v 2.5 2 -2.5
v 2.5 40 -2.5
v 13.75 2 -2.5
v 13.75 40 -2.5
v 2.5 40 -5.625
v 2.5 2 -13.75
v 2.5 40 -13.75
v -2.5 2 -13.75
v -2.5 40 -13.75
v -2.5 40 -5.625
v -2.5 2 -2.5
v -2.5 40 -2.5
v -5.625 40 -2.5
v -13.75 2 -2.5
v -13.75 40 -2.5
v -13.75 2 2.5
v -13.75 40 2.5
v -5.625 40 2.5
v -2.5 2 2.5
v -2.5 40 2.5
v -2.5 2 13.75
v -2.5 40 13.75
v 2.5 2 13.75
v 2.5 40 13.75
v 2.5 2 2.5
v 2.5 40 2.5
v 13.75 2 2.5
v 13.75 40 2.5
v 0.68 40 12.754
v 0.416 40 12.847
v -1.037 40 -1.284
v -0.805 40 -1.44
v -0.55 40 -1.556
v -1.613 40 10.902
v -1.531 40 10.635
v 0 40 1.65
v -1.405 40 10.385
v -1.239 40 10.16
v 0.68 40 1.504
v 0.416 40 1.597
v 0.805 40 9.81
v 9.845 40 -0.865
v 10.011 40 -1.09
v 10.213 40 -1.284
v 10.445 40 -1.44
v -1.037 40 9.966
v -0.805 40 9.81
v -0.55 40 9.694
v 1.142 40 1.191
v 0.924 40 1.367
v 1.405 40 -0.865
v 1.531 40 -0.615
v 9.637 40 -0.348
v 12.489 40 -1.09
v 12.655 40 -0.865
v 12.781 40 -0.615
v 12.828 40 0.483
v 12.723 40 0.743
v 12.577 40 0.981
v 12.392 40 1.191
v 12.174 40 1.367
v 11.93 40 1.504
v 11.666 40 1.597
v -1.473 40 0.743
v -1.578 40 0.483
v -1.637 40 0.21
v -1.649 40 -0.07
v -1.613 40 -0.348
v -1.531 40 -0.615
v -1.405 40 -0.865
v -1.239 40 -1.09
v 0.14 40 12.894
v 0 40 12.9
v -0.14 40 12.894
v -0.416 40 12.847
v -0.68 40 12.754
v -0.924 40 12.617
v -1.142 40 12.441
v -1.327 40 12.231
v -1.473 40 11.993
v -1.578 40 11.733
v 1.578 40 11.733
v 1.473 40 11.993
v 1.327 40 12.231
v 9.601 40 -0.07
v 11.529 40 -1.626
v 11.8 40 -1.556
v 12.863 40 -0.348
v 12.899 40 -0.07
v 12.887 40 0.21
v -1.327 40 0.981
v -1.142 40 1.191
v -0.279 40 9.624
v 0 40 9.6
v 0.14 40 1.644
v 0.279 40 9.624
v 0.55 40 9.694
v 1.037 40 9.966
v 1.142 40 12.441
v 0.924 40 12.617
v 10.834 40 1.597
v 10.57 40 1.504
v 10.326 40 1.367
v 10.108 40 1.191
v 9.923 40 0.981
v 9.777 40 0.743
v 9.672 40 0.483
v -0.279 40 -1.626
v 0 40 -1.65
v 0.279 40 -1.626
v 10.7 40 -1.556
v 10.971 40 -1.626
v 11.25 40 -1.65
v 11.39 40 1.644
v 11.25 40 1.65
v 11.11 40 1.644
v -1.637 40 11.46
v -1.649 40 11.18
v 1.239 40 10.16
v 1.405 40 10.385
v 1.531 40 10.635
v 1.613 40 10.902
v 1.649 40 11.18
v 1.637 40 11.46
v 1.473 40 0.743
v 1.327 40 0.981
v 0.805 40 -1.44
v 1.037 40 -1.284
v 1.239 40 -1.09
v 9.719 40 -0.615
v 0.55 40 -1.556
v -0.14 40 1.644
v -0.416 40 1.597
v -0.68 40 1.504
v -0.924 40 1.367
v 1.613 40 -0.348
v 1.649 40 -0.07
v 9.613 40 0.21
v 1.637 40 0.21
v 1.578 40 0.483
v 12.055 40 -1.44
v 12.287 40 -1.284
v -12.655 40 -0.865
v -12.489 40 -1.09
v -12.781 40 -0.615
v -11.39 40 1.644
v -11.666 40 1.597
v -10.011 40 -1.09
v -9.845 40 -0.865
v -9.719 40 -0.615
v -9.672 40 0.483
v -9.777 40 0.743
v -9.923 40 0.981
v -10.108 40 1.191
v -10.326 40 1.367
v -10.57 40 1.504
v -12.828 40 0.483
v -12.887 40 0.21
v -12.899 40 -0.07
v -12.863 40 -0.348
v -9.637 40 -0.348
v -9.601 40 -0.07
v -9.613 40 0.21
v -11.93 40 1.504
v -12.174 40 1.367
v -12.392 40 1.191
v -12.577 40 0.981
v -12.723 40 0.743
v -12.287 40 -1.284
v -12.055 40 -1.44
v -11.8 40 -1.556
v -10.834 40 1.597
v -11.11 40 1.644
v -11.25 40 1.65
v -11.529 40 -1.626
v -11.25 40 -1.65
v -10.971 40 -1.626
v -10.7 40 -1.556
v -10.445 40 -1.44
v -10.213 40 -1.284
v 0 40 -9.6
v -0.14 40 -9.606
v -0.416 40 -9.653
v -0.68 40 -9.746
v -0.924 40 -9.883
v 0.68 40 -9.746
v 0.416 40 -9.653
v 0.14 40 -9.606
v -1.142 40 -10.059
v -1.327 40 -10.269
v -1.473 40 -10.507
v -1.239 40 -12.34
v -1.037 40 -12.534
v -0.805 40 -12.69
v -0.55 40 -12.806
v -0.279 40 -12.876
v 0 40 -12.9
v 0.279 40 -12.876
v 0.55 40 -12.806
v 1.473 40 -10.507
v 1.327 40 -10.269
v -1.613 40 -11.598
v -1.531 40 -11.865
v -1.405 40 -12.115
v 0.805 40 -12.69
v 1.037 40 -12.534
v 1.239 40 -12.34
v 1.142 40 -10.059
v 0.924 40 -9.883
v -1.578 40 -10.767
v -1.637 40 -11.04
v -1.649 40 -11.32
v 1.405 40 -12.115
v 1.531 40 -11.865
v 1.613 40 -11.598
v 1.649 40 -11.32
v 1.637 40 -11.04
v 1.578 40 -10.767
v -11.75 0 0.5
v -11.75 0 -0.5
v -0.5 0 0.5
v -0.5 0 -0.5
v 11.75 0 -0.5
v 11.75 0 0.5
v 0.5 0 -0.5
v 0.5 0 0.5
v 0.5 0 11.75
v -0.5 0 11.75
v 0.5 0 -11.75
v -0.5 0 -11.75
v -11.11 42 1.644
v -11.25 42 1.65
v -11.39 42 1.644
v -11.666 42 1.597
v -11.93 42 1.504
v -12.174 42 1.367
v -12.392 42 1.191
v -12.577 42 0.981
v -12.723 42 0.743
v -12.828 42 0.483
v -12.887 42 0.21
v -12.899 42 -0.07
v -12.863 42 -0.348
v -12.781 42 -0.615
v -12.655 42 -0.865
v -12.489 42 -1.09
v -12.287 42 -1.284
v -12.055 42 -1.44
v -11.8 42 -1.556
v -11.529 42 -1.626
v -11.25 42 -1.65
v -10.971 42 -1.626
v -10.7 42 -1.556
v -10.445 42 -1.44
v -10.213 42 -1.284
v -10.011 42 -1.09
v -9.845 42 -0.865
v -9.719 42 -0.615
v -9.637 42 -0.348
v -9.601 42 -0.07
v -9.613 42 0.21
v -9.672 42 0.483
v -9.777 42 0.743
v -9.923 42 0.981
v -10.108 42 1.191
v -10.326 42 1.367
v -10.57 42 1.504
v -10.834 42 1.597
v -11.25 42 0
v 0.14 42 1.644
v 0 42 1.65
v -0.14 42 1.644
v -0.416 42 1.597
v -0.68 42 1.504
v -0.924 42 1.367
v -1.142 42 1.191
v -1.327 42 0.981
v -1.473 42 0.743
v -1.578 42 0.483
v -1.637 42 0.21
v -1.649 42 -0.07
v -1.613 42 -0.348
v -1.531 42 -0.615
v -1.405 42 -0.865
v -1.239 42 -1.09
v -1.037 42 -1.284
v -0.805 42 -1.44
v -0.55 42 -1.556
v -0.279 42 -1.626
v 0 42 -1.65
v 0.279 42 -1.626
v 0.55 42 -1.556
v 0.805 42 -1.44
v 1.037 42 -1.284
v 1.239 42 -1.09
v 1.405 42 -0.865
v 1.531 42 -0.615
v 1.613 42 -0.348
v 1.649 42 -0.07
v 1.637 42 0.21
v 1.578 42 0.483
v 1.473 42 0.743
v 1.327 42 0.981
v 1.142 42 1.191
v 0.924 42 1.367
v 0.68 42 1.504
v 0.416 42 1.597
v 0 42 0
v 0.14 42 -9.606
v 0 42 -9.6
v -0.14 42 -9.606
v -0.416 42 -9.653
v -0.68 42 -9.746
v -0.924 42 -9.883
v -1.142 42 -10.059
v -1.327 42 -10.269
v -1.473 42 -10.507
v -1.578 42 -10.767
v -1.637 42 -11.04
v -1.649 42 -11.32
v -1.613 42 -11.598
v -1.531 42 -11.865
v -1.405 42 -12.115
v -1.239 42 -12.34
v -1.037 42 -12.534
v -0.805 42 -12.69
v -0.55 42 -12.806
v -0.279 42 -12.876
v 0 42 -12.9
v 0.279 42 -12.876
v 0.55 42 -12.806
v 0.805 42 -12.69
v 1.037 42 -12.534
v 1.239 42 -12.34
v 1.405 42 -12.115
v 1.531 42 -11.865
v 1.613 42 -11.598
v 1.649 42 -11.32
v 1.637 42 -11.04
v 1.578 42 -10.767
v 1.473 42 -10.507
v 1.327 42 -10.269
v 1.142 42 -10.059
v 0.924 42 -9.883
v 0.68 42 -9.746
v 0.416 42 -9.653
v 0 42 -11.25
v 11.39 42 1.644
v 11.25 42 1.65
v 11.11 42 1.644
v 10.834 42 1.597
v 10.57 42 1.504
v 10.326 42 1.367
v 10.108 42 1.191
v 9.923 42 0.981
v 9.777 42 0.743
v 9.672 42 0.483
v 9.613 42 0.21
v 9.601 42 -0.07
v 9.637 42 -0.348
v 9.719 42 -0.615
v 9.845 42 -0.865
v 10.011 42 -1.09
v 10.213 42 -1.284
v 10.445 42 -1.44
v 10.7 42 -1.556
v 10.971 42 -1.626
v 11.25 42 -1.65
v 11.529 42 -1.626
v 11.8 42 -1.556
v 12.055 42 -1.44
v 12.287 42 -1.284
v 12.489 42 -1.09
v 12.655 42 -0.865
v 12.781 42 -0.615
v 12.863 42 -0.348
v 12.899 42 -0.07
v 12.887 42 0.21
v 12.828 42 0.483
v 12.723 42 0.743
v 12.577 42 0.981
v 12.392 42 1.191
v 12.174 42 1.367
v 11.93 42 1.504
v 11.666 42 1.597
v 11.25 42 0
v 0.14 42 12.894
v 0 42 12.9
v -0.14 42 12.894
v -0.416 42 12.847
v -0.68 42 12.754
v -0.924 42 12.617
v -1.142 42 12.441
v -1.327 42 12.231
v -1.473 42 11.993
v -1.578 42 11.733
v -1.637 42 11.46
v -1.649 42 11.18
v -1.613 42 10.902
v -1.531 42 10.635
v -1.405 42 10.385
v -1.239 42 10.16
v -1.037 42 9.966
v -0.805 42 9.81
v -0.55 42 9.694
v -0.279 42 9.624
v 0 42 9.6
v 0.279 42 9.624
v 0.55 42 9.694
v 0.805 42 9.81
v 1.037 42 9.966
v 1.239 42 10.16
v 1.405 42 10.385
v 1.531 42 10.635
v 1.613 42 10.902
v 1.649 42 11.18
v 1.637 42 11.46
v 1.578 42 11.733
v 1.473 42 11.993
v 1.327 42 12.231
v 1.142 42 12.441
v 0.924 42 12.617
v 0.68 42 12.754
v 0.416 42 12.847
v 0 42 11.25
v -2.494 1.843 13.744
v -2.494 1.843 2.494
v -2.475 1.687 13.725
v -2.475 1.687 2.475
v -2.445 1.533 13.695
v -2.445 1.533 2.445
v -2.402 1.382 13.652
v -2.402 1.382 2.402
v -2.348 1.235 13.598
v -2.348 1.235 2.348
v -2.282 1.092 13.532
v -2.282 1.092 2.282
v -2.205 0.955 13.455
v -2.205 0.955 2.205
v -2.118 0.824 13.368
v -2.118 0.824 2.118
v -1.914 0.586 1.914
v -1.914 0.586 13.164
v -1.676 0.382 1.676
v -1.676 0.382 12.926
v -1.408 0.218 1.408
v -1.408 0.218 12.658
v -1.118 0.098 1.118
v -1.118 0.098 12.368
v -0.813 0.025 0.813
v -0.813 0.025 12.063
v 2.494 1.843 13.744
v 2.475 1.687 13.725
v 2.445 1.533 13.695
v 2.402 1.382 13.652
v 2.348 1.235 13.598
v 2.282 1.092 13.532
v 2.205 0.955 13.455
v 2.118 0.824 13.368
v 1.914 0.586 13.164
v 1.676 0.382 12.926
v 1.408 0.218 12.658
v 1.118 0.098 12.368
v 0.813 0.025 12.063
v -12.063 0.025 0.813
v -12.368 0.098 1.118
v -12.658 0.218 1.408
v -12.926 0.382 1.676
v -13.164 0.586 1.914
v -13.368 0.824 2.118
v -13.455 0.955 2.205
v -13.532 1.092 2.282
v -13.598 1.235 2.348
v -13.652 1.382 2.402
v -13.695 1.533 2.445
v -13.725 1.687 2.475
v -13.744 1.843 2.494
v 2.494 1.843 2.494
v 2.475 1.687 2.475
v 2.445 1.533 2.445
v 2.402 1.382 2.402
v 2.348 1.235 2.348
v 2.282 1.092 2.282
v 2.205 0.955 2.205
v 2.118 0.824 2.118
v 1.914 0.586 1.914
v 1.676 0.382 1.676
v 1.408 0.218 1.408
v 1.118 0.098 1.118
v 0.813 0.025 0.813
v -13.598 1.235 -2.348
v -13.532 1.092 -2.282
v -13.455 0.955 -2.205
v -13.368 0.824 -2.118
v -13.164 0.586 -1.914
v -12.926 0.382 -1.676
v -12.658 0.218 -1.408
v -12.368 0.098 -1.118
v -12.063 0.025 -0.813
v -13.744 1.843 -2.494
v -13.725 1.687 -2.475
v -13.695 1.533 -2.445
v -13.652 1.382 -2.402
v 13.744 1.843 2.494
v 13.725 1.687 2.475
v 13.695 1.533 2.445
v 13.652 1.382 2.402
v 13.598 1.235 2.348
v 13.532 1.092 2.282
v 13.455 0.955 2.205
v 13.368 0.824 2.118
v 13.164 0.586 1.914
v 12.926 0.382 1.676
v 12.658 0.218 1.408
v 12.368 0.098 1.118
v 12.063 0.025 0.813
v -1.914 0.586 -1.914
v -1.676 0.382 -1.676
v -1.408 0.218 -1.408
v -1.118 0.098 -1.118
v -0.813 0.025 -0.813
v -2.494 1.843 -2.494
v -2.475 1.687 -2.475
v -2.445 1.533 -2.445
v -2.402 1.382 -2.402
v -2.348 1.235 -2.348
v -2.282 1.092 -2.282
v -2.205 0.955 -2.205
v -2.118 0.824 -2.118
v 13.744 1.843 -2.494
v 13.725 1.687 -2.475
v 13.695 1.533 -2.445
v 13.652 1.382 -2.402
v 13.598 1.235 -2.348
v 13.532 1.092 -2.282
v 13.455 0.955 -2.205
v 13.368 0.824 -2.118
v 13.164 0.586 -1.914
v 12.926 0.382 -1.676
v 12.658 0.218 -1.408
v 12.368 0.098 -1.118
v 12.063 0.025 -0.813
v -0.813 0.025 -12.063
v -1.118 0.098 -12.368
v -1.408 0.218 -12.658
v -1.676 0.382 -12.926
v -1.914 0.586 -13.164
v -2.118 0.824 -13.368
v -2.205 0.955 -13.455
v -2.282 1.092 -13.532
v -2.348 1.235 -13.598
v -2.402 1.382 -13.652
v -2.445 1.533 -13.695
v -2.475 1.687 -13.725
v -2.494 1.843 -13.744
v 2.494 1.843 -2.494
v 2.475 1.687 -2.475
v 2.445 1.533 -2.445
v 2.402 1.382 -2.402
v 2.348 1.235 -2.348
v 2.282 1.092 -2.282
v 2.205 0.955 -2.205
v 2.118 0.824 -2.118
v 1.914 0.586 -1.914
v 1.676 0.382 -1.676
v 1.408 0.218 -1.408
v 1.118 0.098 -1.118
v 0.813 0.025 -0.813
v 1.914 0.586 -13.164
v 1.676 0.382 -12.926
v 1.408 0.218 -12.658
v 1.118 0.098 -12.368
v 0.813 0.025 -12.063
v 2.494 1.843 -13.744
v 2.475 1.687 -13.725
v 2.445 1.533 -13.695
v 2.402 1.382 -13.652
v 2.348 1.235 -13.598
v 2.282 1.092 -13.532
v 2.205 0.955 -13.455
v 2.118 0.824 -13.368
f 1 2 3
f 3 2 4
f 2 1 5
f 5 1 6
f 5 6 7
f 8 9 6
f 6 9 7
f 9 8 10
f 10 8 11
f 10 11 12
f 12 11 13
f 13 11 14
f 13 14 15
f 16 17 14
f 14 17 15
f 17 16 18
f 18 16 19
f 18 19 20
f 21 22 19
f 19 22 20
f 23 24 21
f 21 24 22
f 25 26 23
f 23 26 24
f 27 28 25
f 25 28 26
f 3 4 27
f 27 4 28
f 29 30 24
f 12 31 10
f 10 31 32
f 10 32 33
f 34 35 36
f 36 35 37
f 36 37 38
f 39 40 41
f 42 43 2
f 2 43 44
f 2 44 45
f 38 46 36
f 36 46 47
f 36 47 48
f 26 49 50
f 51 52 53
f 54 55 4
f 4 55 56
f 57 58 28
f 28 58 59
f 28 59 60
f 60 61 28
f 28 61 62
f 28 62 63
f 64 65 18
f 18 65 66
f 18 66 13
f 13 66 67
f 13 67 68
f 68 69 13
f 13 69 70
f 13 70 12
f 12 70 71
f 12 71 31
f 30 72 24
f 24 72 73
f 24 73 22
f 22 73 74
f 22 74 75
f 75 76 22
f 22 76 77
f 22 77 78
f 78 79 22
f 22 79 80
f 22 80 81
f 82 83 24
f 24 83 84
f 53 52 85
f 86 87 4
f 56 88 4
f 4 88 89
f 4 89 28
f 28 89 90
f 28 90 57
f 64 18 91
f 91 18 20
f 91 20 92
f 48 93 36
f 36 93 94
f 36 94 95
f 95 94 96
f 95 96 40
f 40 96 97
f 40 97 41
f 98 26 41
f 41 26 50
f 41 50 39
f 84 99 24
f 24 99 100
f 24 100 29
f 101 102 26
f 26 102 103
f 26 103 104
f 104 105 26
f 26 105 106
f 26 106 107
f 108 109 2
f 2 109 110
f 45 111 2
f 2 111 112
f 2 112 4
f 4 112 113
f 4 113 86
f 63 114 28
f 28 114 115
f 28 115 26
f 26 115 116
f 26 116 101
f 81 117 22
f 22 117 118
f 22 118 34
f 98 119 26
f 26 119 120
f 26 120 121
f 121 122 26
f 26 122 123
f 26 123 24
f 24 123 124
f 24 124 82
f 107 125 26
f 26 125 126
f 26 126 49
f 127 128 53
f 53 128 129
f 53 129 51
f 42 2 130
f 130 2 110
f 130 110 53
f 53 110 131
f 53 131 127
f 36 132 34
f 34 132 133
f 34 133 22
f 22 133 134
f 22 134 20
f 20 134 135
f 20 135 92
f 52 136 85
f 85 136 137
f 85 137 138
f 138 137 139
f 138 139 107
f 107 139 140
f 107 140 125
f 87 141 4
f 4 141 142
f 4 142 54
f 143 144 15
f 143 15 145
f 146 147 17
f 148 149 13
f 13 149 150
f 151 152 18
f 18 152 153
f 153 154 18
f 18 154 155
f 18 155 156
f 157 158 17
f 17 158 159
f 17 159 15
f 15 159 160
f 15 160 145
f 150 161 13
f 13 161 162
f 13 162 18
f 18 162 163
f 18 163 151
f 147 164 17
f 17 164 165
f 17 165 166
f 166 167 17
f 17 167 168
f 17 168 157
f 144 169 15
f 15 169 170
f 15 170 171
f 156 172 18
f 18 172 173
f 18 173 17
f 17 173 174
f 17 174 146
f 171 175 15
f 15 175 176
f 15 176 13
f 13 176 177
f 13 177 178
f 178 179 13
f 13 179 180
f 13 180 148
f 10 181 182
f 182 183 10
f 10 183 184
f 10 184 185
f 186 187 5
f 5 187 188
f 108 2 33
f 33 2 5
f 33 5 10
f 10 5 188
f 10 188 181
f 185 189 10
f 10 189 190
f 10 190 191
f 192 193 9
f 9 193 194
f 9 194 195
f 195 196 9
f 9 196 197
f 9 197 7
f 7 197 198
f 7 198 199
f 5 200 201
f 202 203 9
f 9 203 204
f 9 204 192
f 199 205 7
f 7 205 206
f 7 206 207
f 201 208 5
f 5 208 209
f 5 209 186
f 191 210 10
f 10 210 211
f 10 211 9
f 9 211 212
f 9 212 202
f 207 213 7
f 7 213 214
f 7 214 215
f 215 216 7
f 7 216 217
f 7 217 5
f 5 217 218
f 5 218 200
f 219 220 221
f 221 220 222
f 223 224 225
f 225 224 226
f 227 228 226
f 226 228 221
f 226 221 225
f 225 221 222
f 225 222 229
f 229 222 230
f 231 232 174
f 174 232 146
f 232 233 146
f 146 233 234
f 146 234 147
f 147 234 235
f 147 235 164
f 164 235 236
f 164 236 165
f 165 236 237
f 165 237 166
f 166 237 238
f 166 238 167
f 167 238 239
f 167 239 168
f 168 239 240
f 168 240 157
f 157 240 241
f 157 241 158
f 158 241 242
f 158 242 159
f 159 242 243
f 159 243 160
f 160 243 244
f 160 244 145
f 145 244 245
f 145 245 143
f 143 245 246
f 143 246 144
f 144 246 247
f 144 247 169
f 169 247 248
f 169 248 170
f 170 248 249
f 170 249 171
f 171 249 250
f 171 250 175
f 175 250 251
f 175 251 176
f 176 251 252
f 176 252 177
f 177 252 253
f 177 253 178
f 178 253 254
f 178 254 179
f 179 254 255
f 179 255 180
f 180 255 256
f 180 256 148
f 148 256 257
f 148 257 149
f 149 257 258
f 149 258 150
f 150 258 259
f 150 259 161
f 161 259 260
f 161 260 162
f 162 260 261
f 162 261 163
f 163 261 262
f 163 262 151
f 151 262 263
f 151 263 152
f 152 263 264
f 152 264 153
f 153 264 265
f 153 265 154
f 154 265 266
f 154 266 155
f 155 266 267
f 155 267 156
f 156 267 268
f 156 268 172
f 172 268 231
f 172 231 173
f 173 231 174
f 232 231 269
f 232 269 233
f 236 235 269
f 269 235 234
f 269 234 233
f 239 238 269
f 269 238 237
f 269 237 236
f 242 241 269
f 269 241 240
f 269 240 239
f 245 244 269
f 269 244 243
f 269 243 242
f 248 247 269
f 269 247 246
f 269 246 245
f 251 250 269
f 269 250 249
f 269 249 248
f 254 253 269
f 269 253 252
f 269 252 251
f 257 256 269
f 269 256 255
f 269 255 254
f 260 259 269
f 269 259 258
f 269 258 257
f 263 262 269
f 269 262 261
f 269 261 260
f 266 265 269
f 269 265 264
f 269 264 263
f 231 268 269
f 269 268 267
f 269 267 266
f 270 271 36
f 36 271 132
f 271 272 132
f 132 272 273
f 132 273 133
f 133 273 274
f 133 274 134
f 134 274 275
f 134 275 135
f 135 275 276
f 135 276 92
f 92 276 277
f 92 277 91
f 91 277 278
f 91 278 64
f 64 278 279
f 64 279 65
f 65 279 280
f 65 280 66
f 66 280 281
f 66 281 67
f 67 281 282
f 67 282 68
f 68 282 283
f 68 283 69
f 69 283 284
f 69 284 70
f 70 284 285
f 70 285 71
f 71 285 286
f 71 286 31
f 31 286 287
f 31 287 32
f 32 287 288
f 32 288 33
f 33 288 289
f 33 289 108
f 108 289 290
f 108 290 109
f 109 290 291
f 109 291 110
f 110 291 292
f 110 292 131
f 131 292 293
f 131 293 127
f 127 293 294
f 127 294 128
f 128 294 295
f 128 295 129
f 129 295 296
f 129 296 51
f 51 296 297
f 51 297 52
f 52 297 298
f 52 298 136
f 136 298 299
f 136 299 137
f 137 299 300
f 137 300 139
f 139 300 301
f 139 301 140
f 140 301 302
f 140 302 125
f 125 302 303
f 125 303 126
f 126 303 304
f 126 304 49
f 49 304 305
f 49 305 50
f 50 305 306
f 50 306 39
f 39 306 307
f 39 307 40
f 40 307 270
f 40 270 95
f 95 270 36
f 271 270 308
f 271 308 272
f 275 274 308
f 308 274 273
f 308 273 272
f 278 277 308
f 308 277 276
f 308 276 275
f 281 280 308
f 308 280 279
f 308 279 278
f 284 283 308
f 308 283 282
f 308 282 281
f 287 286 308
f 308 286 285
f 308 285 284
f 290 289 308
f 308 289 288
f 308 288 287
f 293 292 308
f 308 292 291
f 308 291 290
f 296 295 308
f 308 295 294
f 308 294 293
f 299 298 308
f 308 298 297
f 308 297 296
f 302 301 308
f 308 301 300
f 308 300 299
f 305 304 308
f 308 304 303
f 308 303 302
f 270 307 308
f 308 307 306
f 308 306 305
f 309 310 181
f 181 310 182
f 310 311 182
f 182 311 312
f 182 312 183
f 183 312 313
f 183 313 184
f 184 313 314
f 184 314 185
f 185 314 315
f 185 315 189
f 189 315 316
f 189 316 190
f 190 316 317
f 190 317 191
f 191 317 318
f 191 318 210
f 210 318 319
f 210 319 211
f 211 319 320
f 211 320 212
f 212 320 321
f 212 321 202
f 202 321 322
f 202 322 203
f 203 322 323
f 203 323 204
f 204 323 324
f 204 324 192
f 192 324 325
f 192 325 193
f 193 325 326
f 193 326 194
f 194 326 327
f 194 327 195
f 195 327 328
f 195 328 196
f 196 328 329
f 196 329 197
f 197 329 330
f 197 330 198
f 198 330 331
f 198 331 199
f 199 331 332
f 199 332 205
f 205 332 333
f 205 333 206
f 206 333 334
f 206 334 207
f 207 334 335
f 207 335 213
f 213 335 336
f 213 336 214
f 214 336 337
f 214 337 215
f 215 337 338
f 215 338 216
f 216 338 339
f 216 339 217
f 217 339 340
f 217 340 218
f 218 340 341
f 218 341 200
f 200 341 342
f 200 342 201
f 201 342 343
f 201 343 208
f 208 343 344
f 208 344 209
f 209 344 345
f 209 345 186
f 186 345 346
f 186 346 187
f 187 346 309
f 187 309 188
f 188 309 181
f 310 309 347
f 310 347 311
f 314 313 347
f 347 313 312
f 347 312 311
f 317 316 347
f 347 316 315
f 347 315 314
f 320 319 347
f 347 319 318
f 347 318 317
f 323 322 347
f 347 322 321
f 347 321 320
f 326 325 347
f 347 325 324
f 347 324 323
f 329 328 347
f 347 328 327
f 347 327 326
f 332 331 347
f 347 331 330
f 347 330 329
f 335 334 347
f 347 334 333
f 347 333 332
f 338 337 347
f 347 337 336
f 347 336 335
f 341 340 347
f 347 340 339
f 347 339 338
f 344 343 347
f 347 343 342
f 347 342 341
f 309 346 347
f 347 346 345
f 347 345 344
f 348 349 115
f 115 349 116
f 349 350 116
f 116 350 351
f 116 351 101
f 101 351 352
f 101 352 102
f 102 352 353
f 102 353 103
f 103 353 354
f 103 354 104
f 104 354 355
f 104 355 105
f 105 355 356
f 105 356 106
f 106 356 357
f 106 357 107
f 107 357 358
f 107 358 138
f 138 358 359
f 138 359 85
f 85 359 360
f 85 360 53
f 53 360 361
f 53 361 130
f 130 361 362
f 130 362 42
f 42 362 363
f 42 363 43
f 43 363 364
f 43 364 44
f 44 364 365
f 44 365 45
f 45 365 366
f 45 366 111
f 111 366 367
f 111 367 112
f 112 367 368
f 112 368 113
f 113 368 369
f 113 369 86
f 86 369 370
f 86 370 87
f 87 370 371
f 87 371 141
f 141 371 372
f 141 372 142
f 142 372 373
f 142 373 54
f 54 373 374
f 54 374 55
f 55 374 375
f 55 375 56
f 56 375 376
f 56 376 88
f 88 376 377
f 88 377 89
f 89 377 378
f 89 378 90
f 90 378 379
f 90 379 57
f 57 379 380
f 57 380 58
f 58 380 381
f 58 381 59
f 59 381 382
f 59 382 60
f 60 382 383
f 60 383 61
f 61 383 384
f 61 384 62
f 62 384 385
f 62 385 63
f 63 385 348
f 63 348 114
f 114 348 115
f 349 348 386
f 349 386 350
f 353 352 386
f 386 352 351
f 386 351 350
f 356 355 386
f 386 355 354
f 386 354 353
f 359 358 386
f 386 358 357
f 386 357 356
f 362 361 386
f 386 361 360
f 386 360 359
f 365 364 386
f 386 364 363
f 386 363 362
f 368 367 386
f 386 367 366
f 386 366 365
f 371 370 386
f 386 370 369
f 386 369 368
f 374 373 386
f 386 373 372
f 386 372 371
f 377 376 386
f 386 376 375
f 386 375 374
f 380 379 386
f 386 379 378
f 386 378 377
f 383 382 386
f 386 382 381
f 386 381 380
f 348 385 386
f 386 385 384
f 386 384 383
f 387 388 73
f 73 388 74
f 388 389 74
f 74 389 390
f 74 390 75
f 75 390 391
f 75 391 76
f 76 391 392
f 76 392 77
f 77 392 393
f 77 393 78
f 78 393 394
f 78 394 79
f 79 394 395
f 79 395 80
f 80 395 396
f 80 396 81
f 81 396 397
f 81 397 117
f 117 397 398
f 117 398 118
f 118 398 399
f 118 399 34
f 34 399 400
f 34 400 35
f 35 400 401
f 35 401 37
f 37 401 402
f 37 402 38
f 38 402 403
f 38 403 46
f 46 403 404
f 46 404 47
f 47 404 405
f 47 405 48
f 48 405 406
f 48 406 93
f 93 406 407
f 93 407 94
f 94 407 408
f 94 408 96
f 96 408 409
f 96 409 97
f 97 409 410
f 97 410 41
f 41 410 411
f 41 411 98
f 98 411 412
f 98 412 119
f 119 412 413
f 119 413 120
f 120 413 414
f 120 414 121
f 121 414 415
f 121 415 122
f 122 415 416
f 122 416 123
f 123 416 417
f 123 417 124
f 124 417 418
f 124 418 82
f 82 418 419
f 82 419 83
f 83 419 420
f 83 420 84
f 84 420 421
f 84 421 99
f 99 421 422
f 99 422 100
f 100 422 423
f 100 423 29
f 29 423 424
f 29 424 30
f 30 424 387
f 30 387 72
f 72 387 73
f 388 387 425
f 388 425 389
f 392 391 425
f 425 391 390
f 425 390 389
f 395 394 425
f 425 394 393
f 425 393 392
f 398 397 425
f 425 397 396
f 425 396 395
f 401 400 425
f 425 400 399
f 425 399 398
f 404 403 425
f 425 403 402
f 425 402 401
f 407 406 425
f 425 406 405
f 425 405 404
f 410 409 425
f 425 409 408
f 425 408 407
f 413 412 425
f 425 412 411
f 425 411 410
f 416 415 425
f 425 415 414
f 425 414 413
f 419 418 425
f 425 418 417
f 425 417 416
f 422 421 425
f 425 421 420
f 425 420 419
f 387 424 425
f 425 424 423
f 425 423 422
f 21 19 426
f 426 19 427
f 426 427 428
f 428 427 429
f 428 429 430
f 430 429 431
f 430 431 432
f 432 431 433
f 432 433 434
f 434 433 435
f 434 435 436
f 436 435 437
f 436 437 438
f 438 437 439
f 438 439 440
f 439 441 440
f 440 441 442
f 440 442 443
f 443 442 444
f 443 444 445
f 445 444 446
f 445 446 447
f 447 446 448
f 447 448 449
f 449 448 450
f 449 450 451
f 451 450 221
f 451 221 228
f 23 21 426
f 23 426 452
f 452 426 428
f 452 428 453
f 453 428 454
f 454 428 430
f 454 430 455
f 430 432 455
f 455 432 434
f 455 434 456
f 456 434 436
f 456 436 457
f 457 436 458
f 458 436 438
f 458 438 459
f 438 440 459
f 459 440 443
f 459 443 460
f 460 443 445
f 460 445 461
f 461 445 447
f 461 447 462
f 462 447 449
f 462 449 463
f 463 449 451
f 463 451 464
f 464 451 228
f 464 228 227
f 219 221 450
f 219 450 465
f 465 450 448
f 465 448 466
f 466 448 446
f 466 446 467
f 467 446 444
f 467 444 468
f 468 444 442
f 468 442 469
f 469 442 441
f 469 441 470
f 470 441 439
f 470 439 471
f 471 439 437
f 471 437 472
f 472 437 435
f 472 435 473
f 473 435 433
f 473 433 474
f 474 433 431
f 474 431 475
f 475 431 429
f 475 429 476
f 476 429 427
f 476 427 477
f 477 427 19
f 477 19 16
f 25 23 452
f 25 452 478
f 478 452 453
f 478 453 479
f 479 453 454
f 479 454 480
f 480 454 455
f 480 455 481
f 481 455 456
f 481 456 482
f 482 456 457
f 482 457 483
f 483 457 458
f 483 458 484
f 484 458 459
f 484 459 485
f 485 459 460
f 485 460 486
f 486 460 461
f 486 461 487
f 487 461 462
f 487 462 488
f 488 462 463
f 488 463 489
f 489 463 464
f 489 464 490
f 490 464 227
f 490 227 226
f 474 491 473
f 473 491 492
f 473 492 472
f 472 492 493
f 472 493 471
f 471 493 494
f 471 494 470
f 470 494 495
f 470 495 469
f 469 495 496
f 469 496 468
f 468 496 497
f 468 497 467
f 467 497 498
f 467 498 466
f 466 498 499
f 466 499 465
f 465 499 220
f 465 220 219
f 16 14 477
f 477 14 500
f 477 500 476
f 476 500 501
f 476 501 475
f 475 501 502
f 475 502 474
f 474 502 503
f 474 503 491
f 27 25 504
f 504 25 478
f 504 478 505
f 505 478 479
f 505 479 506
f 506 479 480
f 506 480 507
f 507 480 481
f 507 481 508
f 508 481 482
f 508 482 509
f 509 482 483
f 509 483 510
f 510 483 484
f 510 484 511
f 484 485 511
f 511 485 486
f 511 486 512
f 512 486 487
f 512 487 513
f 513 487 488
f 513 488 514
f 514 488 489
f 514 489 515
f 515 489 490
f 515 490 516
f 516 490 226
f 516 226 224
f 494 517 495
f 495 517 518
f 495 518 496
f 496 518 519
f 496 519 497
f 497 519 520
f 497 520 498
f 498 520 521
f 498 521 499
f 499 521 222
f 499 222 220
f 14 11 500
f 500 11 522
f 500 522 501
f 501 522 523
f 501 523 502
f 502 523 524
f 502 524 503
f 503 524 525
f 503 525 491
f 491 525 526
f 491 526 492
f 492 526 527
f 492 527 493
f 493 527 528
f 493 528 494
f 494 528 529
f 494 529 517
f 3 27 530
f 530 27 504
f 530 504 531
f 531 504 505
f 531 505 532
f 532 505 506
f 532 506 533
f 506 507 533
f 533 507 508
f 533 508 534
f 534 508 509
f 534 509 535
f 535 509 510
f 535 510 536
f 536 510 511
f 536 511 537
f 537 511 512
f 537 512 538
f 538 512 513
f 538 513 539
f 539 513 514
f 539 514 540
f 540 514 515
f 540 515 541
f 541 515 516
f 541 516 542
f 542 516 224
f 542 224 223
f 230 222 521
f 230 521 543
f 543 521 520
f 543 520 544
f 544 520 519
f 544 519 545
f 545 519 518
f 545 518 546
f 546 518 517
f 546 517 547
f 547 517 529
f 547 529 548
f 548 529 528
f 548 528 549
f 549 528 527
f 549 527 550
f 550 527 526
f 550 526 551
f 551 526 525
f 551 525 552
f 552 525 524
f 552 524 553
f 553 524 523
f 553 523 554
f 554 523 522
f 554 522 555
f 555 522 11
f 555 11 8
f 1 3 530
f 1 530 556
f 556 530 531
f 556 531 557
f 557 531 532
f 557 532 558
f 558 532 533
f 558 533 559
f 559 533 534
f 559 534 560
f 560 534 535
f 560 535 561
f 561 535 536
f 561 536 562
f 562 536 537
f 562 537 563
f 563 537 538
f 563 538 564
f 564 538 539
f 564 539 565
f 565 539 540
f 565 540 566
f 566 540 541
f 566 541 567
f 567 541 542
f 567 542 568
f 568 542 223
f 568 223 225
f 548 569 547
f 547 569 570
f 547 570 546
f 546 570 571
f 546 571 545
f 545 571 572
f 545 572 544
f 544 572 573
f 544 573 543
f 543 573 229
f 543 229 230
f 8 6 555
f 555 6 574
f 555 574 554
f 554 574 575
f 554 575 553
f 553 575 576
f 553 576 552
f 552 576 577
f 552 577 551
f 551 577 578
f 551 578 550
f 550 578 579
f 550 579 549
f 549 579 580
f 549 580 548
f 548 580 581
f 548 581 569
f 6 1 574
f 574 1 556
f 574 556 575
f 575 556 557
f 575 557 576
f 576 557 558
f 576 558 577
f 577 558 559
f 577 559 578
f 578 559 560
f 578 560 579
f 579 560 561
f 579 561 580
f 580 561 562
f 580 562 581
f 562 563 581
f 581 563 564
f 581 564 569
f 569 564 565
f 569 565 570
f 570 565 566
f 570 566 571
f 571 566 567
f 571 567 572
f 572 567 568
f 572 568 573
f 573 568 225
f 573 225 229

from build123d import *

# Parameters (mm, degrees)
BOSS_EXTRUDE1_DEPTH = 40
SKETCH2_R           = 1.65
BOSS_EXTRUDE2_DEPTH = 2
FILLET2_R           = 2


with BuildPart() as part:
    # Sketch1 → Boss-Extrude1 (new body)
    with BuildSketch(Plane(origin=(0, 0, 0), x_dir=(1, 0, 0), z_dir=(0, 1, 0))):
        Polygon((-2.5, -13.75), (2.5, -13.75), (2.5, -2.5), (13.75, -2.5), (13.75, 2.5), (2.5, 2.5), (2.5, 13.75), (-2.5, 13.75), (-2.5, 2.5), (-13.75, 2.5), (-13.75, -2.5), (-2.5, -2.5), align=None)
    extrude(amount=BOSS_EXTRUDE1_DEPTH)

    # Sketch2 → Boss-Extrude2 (add)
    with BuildSketch(Plane(origin=(0, 40, 0), x_dir=(1, 0, 0), z_dir=(0, 1, 0))):
        with Locations(Location((0, 0, 0), (0, 0, 270))):
            Circle(SKETCH2_R)
        with Locations(Location((11.25, 0, 0), (0, 0, 270))):
            Circle(SKETCH2_R)
        with Locations(Location((-11.25, 0, 0), (0, 0, 270))):
            Circle(SKETCH2_R)
        with Locations(Location((0, 11.25, 0), (0, 0, 270))):
            Circle(SKETCH2_R)
        with Locations(Location((0, -11.25, 0), (0, 0, 270))):
            Circle(SKETCH2_R)
    extrude(amount=BOSS_EXTRUDE2_DEPTH)

    # Fillet2
    fillet2_edges = [part.edges().sort_by_distance(p)[0] for p in [
        (13.75, 0, 0),
        (8.125, 0, 2.5),
        (2.5, 0, 8.125),
        (0, 0, 13.75),
        (-2.5, 0, 8.125),
        (-8.125, 0, 2.5),
        (-13.75, 0, 0),
        (-8.125, 0, -2.5),
        (-2.5, 0, -8.125),
        (0, 0, -13.75),
        (2.5, 0, -8.125),
        (8.125, 0, -2.5),
    ]]
    fillet(fillet2_edges, radius=FILLET2_R)


solid = part.part
